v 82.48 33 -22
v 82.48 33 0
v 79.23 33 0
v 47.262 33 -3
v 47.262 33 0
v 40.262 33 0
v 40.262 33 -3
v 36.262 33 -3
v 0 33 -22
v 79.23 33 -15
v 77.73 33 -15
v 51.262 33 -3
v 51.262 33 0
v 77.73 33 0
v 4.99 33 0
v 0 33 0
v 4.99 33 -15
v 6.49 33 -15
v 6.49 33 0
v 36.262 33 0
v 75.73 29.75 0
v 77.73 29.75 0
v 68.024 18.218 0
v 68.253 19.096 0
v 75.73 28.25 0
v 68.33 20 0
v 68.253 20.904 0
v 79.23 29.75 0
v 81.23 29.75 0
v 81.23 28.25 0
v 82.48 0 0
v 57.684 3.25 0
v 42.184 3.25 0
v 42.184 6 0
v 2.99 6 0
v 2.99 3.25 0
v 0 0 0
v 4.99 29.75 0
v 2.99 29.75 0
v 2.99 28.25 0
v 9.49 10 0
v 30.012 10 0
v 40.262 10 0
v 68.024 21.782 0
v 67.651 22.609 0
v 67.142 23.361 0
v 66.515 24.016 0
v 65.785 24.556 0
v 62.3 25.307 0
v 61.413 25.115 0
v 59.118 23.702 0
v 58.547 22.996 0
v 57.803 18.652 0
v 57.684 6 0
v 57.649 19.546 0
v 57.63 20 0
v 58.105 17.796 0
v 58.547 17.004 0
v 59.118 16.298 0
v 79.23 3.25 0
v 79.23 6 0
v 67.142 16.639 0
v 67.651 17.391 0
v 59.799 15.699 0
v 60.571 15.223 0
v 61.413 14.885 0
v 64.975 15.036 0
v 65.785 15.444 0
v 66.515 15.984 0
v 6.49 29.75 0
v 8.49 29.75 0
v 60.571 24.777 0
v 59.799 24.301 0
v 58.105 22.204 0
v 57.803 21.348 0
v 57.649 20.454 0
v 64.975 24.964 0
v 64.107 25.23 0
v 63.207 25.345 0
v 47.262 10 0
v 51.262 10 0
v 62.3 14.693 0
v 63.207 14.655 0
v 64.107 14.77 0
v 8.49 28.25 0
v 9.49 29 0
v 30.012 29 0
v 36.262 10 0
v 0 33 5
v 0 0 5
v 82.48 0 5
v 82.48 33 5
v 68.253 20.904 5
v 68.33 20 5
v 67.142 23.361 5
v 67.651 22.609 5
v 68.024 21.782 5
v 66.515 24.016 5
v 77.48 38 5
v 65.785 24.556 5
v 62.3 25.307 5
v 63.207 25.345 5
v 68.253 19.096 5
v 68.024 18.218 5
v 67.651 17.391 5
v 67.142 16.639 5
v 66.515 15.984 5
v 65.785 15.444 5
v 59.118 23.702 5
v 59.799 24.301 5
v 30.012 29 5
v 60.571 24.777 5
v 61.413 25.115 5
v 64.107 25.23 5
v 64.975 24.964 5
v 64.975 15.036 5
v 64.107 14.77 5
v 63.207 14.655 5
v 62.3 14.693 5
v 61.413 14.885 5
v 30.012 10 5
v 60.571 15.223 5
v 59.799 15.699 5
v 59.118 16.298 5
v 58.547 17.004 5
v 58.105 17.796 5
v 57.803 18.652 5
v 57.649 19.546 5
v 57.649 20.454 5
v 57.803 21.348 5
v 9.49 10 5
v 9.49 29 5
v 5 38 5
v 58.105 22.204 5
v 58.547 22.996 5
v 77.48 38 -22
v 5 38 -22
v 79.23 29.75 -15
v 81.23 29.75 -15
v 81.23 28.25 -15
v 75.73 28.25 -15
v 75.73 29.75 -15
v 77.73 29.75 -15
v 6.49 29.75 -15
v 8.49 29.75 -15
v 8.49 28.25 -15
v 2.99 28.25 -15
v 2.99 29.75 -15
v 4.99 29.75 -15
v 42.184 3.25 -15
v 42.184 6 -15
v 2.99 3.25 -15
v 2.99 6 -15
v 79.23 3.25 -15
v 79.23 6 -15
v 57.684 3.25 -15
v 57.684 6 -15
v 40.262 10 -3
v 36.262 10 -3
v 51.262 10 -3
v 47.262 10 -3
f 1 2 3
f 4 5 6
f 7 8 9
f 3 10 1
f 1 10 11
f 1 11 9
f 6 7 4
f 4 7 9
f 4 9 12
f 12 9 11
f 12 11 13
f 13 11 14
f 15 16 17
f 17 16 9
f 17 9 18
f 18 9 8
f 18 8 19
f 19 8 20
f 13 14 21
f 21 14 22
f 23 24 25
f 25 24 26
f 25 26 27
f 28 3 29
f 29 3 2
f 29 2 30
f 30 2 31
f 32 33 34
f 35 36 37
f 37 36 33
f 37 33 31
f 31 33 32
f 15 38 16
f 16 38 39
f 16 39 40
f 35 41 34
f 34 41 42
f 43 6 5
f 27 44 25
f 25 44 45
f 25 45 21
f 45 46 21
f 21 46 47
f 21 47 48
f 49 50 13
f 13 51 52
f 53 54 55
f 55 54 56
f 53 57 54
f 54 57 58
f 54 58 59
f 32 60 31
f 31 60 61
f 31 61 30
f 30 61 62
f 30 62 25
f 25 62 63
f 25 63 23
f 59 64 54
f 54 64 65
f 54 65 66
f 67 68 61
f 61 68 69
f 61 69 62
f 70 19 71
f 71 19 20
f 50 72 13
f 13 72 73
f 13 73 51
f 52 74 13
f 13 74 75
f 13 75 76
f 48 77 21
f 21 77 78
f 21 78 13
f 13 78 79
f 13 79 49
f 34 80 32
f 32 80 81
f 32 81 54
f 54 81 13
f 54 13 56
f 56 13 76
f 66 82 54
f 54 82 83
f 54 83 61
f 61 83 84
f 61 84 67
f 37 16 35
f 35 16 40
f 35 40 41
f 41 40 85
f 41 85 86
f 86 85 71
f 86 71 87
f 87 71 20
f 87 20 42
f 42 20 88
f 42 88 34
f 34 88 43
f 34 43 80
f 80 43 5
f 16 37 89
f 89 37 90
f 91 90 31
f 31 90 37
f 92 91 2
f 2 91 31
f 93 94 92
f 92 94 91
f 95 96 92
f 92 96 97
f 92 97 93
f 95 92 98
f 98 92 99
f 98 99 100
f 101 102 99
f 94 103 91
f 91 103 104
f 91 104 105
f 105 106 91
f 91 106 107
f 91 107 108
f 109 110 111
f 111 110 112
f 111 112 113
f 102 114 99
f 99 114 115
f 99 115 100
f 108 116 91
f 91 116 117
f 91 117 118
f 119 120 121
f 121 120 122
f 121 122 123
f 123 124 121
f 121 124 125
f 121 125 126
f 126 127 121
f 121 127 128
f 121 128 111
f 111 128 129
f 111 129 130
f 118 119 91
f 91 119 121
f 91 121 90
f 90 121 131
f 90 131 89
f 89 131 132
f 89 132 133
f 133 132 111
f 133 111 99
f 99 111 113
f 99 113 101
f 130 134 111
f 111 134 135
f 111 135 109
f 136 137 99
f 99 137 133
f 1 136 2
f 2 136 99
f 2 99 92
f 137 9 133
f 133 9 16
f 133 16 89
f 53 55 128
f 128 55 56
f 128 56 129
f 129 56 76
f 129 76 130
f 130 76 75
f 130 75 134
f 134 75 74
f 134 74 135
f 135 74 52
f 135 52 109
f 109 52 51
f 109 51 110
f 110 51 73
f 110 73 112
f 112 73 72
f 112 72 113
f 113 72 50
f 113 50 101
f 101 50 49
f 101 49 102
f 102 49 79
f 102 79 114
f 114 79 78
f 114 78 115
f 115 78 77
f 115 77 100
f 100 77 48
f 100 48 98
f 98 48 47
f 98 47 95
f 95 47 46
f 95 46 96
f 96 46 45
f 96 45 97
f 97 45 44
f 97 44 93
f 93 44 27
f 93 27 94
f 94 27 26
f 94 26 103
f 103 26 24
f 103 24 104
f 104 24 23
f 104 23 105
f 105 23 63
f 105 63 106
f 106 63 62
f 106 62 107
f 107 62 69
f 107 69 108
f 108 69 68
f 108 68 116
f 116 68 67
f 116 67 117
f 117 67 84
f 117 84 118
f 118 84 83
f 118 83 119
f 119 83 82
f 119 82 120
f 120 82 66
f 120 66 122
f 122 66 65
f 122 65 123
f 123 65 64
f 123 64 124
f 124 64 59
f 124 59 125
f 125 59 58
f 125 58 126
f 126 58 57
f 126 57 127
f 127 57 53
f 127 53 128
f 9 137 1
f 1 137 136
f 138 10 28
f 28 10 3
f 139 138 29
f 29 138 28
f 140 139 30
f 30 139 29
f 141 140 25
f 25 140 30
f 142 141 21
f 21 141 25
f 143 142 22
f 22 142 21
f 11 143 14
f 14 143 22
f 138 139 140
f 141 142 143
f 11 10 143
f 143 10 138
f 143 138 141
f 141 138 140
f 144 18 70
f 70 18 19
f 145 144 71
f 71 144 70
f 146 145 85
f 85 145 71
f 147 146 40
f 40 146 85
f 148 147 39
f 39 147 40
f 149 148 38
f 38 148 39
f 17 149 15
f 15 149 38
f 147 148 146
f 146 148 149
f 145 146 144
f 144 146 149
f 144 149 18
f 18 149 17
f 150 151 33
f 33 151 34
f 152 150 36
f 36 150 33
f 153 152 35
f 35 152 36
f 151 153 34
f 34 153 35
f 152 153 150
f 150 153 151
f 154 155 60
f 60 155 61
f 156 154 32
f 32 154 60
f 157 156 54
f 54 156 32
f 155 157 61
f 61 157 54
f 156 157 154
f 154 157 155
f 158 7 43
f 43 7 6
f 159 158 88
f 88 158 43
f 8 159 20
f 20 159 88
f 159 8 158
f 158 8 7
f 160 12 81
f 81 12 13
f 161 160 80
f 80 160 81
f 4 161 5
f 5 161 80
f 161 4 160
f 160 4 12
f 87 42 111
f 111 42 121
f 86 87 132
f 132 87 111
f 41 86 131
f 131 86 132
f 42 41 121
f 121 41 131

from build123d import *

# Parameters (mm, degrees)
SKETCH1_W           = 82.48
SKETCH1_H           = 33
BOSS_EXTRUDE1_DEPTH = 5
SKETCH2_W           = 82.48
SKETCH2_H           = 5
BOSS_EXTRUDE2_DEPTH = 5
CHAMFER1_SIZE       = 5
CUT_EXTRUDE1_REACH  = 92.95
SKETCH3_R           = 5.35
BOSS_EXTRUDE3_DEPTH = 22
SKETCH5_W           = 21.546115959
SKETCH5_H           = 2.75
SKETCH5_W_2         = 39.193884041
BOSS_EXTRUDE4_DEPTH = 15
SKETCH6_W           = 4
SKETCH6_H           = 23
BOSS_EXTRUDE5_DEPTH = 3
CUT_EXTRUDE2_REACH  = 95.44
SKETCH7_W           = 20.522158998
SKETCH7_H           = 19


with BuildPart() as part:
    # Sketch1 → Boss-Extrude1 (new body)
    with BuildSketch(Plane.XY):
        with Locations((41.24, 16.5)):
            Rectangle(SKETCH1_W, SKETCH1_H)
    extrude(amount=BOSS_EXTRUDE1_DEPTH)

    # Sketch2 → Boss-Extrude2 (add)
    with BuildSketch(Plane(origin=(0, 33, 0), x_dir=(1, 0, 0), z_dir=(0, 1, 0))):
        with Locations((41.24, -2.5)):
            Rectangle(SKETCH2_W, SKETCH2_H)
    extrude(amount=BOSS_EXTRUDE2_DEPTH)

    # Chamfer1
    chamfer1_edges = [part.edges().sort_by_distance(p)[0] for p in [
        (0, 38, 2.5),
        (82.48, 38, 2.5),
    ]]
    chamfer(chamfer1_edges, length=CHAMFER1_SIZE)

    # Sketch3 → Cut-Extrude1 (cut, up to next)
    with BuildSketch(Plane.XY.offset(5), mode=Mode.PRIVATE) as cut_extrude1_sk1:
        with Locations((62.98, 20)):
            Circle(SKETCH3_R)
    cut_extrude1_tool1 = extrude(cut_extrude1_sk1.sketch, amount=-CUT_EXTRUDE1_REACH, mode=Mode.PRIVATE) & part.part
    add(cut_extrude1_tool1.solids().sort_by_distance((62.98, 20, 5))[0], mode=Mode.SUBTRACT)

    # Sketch4 → Boss-Extrude3 (add)
    with BuildSketch(Plane(origin=(0, 0, 0), x_dir=(-1, 0, 0), z_dir=(0, 0, -1))):
        Polygon((-82.48, 33), (0, 33), (-5, 38), (-77.48, 38), align=None)
    extrude(amount=BOSS_EXTRUDE3_DEPTH)

    # Sketch5 → Boss-Extrude4 (add)
    with BuildSketch(Plane(origin=(0, 0, 0), x_dir=(-1, 0, 0), z_dir=(0, 0, -1))):
        Polygon((-79.23, 33), (-77.73, 33), (-77.73, 29.75), (-75.73, 29.75), (-75.73, 28.25), (-81.23, 28.25), (-81.23, 29.75), (-79.23, 29.75), align=None)
        Polygon((-6.49, 33), (-4.99, 33), (-4.99, 29.75), (-2.99, 29.75), (-2.99, 28.25), (-8.49, 28.25), (-8.49, 29.75), (-6.49, 29.75), align=None)
        with Locations((-68.456942021, 4.625)):
            Rectangle(SKETCH5_W, SKETCH5_H)
        with Locations((-22.586942021, 4.625)):
            Rectangle(SKETCH5_W_2, SKETCH5_H)
    extrude(amount=BOSS_EXTRUDE4_DEPTH)

    # Sketch6 → Boss-Extrude5 (add)
    with BuildSketch(Plane(origin=(0, 0, 0), x_dir=(-1, 0, 0), z_dir=(0, 0, -1))):
        with Locations((-49.262158998, 21.5)):
            Rectangle(SKETCH6_W, SKETCH6_H)
        with Locations((-38.262158998, 21.5)):
            Rectangle(SKETCH6_W, SKETCH6_H)
    extrude(amount=BOSS_EXTRUDE5_DEPTH)

    # Sketch7 → Cut-Extrude2 (cut, up to next)
    with BuildSketch(Plane(origin=(0, 0, 0), x_dir=(-1, 0, 0), z_dir=(0, 0, -1)), mode=Mode.PRIVATE) as cut_extrude2_sk1:
        with Locations((-19.751079499, 19.5)):
            Rectangle(SKETCH7_W, SKETCH7_H)
    cut_extrude2_tool1 = extrude(cut_extrude2_sk1.sketch, amount=-CUT_EXTRUDE2_REACH, mode=Mode.PRIVATE) & part.part
    add(cut_extrude2_tool1.solids().sort_by_distance((19.751079, 19.5, 0))[0], mode=Mode.SUBTRACT)


solid = part.part
